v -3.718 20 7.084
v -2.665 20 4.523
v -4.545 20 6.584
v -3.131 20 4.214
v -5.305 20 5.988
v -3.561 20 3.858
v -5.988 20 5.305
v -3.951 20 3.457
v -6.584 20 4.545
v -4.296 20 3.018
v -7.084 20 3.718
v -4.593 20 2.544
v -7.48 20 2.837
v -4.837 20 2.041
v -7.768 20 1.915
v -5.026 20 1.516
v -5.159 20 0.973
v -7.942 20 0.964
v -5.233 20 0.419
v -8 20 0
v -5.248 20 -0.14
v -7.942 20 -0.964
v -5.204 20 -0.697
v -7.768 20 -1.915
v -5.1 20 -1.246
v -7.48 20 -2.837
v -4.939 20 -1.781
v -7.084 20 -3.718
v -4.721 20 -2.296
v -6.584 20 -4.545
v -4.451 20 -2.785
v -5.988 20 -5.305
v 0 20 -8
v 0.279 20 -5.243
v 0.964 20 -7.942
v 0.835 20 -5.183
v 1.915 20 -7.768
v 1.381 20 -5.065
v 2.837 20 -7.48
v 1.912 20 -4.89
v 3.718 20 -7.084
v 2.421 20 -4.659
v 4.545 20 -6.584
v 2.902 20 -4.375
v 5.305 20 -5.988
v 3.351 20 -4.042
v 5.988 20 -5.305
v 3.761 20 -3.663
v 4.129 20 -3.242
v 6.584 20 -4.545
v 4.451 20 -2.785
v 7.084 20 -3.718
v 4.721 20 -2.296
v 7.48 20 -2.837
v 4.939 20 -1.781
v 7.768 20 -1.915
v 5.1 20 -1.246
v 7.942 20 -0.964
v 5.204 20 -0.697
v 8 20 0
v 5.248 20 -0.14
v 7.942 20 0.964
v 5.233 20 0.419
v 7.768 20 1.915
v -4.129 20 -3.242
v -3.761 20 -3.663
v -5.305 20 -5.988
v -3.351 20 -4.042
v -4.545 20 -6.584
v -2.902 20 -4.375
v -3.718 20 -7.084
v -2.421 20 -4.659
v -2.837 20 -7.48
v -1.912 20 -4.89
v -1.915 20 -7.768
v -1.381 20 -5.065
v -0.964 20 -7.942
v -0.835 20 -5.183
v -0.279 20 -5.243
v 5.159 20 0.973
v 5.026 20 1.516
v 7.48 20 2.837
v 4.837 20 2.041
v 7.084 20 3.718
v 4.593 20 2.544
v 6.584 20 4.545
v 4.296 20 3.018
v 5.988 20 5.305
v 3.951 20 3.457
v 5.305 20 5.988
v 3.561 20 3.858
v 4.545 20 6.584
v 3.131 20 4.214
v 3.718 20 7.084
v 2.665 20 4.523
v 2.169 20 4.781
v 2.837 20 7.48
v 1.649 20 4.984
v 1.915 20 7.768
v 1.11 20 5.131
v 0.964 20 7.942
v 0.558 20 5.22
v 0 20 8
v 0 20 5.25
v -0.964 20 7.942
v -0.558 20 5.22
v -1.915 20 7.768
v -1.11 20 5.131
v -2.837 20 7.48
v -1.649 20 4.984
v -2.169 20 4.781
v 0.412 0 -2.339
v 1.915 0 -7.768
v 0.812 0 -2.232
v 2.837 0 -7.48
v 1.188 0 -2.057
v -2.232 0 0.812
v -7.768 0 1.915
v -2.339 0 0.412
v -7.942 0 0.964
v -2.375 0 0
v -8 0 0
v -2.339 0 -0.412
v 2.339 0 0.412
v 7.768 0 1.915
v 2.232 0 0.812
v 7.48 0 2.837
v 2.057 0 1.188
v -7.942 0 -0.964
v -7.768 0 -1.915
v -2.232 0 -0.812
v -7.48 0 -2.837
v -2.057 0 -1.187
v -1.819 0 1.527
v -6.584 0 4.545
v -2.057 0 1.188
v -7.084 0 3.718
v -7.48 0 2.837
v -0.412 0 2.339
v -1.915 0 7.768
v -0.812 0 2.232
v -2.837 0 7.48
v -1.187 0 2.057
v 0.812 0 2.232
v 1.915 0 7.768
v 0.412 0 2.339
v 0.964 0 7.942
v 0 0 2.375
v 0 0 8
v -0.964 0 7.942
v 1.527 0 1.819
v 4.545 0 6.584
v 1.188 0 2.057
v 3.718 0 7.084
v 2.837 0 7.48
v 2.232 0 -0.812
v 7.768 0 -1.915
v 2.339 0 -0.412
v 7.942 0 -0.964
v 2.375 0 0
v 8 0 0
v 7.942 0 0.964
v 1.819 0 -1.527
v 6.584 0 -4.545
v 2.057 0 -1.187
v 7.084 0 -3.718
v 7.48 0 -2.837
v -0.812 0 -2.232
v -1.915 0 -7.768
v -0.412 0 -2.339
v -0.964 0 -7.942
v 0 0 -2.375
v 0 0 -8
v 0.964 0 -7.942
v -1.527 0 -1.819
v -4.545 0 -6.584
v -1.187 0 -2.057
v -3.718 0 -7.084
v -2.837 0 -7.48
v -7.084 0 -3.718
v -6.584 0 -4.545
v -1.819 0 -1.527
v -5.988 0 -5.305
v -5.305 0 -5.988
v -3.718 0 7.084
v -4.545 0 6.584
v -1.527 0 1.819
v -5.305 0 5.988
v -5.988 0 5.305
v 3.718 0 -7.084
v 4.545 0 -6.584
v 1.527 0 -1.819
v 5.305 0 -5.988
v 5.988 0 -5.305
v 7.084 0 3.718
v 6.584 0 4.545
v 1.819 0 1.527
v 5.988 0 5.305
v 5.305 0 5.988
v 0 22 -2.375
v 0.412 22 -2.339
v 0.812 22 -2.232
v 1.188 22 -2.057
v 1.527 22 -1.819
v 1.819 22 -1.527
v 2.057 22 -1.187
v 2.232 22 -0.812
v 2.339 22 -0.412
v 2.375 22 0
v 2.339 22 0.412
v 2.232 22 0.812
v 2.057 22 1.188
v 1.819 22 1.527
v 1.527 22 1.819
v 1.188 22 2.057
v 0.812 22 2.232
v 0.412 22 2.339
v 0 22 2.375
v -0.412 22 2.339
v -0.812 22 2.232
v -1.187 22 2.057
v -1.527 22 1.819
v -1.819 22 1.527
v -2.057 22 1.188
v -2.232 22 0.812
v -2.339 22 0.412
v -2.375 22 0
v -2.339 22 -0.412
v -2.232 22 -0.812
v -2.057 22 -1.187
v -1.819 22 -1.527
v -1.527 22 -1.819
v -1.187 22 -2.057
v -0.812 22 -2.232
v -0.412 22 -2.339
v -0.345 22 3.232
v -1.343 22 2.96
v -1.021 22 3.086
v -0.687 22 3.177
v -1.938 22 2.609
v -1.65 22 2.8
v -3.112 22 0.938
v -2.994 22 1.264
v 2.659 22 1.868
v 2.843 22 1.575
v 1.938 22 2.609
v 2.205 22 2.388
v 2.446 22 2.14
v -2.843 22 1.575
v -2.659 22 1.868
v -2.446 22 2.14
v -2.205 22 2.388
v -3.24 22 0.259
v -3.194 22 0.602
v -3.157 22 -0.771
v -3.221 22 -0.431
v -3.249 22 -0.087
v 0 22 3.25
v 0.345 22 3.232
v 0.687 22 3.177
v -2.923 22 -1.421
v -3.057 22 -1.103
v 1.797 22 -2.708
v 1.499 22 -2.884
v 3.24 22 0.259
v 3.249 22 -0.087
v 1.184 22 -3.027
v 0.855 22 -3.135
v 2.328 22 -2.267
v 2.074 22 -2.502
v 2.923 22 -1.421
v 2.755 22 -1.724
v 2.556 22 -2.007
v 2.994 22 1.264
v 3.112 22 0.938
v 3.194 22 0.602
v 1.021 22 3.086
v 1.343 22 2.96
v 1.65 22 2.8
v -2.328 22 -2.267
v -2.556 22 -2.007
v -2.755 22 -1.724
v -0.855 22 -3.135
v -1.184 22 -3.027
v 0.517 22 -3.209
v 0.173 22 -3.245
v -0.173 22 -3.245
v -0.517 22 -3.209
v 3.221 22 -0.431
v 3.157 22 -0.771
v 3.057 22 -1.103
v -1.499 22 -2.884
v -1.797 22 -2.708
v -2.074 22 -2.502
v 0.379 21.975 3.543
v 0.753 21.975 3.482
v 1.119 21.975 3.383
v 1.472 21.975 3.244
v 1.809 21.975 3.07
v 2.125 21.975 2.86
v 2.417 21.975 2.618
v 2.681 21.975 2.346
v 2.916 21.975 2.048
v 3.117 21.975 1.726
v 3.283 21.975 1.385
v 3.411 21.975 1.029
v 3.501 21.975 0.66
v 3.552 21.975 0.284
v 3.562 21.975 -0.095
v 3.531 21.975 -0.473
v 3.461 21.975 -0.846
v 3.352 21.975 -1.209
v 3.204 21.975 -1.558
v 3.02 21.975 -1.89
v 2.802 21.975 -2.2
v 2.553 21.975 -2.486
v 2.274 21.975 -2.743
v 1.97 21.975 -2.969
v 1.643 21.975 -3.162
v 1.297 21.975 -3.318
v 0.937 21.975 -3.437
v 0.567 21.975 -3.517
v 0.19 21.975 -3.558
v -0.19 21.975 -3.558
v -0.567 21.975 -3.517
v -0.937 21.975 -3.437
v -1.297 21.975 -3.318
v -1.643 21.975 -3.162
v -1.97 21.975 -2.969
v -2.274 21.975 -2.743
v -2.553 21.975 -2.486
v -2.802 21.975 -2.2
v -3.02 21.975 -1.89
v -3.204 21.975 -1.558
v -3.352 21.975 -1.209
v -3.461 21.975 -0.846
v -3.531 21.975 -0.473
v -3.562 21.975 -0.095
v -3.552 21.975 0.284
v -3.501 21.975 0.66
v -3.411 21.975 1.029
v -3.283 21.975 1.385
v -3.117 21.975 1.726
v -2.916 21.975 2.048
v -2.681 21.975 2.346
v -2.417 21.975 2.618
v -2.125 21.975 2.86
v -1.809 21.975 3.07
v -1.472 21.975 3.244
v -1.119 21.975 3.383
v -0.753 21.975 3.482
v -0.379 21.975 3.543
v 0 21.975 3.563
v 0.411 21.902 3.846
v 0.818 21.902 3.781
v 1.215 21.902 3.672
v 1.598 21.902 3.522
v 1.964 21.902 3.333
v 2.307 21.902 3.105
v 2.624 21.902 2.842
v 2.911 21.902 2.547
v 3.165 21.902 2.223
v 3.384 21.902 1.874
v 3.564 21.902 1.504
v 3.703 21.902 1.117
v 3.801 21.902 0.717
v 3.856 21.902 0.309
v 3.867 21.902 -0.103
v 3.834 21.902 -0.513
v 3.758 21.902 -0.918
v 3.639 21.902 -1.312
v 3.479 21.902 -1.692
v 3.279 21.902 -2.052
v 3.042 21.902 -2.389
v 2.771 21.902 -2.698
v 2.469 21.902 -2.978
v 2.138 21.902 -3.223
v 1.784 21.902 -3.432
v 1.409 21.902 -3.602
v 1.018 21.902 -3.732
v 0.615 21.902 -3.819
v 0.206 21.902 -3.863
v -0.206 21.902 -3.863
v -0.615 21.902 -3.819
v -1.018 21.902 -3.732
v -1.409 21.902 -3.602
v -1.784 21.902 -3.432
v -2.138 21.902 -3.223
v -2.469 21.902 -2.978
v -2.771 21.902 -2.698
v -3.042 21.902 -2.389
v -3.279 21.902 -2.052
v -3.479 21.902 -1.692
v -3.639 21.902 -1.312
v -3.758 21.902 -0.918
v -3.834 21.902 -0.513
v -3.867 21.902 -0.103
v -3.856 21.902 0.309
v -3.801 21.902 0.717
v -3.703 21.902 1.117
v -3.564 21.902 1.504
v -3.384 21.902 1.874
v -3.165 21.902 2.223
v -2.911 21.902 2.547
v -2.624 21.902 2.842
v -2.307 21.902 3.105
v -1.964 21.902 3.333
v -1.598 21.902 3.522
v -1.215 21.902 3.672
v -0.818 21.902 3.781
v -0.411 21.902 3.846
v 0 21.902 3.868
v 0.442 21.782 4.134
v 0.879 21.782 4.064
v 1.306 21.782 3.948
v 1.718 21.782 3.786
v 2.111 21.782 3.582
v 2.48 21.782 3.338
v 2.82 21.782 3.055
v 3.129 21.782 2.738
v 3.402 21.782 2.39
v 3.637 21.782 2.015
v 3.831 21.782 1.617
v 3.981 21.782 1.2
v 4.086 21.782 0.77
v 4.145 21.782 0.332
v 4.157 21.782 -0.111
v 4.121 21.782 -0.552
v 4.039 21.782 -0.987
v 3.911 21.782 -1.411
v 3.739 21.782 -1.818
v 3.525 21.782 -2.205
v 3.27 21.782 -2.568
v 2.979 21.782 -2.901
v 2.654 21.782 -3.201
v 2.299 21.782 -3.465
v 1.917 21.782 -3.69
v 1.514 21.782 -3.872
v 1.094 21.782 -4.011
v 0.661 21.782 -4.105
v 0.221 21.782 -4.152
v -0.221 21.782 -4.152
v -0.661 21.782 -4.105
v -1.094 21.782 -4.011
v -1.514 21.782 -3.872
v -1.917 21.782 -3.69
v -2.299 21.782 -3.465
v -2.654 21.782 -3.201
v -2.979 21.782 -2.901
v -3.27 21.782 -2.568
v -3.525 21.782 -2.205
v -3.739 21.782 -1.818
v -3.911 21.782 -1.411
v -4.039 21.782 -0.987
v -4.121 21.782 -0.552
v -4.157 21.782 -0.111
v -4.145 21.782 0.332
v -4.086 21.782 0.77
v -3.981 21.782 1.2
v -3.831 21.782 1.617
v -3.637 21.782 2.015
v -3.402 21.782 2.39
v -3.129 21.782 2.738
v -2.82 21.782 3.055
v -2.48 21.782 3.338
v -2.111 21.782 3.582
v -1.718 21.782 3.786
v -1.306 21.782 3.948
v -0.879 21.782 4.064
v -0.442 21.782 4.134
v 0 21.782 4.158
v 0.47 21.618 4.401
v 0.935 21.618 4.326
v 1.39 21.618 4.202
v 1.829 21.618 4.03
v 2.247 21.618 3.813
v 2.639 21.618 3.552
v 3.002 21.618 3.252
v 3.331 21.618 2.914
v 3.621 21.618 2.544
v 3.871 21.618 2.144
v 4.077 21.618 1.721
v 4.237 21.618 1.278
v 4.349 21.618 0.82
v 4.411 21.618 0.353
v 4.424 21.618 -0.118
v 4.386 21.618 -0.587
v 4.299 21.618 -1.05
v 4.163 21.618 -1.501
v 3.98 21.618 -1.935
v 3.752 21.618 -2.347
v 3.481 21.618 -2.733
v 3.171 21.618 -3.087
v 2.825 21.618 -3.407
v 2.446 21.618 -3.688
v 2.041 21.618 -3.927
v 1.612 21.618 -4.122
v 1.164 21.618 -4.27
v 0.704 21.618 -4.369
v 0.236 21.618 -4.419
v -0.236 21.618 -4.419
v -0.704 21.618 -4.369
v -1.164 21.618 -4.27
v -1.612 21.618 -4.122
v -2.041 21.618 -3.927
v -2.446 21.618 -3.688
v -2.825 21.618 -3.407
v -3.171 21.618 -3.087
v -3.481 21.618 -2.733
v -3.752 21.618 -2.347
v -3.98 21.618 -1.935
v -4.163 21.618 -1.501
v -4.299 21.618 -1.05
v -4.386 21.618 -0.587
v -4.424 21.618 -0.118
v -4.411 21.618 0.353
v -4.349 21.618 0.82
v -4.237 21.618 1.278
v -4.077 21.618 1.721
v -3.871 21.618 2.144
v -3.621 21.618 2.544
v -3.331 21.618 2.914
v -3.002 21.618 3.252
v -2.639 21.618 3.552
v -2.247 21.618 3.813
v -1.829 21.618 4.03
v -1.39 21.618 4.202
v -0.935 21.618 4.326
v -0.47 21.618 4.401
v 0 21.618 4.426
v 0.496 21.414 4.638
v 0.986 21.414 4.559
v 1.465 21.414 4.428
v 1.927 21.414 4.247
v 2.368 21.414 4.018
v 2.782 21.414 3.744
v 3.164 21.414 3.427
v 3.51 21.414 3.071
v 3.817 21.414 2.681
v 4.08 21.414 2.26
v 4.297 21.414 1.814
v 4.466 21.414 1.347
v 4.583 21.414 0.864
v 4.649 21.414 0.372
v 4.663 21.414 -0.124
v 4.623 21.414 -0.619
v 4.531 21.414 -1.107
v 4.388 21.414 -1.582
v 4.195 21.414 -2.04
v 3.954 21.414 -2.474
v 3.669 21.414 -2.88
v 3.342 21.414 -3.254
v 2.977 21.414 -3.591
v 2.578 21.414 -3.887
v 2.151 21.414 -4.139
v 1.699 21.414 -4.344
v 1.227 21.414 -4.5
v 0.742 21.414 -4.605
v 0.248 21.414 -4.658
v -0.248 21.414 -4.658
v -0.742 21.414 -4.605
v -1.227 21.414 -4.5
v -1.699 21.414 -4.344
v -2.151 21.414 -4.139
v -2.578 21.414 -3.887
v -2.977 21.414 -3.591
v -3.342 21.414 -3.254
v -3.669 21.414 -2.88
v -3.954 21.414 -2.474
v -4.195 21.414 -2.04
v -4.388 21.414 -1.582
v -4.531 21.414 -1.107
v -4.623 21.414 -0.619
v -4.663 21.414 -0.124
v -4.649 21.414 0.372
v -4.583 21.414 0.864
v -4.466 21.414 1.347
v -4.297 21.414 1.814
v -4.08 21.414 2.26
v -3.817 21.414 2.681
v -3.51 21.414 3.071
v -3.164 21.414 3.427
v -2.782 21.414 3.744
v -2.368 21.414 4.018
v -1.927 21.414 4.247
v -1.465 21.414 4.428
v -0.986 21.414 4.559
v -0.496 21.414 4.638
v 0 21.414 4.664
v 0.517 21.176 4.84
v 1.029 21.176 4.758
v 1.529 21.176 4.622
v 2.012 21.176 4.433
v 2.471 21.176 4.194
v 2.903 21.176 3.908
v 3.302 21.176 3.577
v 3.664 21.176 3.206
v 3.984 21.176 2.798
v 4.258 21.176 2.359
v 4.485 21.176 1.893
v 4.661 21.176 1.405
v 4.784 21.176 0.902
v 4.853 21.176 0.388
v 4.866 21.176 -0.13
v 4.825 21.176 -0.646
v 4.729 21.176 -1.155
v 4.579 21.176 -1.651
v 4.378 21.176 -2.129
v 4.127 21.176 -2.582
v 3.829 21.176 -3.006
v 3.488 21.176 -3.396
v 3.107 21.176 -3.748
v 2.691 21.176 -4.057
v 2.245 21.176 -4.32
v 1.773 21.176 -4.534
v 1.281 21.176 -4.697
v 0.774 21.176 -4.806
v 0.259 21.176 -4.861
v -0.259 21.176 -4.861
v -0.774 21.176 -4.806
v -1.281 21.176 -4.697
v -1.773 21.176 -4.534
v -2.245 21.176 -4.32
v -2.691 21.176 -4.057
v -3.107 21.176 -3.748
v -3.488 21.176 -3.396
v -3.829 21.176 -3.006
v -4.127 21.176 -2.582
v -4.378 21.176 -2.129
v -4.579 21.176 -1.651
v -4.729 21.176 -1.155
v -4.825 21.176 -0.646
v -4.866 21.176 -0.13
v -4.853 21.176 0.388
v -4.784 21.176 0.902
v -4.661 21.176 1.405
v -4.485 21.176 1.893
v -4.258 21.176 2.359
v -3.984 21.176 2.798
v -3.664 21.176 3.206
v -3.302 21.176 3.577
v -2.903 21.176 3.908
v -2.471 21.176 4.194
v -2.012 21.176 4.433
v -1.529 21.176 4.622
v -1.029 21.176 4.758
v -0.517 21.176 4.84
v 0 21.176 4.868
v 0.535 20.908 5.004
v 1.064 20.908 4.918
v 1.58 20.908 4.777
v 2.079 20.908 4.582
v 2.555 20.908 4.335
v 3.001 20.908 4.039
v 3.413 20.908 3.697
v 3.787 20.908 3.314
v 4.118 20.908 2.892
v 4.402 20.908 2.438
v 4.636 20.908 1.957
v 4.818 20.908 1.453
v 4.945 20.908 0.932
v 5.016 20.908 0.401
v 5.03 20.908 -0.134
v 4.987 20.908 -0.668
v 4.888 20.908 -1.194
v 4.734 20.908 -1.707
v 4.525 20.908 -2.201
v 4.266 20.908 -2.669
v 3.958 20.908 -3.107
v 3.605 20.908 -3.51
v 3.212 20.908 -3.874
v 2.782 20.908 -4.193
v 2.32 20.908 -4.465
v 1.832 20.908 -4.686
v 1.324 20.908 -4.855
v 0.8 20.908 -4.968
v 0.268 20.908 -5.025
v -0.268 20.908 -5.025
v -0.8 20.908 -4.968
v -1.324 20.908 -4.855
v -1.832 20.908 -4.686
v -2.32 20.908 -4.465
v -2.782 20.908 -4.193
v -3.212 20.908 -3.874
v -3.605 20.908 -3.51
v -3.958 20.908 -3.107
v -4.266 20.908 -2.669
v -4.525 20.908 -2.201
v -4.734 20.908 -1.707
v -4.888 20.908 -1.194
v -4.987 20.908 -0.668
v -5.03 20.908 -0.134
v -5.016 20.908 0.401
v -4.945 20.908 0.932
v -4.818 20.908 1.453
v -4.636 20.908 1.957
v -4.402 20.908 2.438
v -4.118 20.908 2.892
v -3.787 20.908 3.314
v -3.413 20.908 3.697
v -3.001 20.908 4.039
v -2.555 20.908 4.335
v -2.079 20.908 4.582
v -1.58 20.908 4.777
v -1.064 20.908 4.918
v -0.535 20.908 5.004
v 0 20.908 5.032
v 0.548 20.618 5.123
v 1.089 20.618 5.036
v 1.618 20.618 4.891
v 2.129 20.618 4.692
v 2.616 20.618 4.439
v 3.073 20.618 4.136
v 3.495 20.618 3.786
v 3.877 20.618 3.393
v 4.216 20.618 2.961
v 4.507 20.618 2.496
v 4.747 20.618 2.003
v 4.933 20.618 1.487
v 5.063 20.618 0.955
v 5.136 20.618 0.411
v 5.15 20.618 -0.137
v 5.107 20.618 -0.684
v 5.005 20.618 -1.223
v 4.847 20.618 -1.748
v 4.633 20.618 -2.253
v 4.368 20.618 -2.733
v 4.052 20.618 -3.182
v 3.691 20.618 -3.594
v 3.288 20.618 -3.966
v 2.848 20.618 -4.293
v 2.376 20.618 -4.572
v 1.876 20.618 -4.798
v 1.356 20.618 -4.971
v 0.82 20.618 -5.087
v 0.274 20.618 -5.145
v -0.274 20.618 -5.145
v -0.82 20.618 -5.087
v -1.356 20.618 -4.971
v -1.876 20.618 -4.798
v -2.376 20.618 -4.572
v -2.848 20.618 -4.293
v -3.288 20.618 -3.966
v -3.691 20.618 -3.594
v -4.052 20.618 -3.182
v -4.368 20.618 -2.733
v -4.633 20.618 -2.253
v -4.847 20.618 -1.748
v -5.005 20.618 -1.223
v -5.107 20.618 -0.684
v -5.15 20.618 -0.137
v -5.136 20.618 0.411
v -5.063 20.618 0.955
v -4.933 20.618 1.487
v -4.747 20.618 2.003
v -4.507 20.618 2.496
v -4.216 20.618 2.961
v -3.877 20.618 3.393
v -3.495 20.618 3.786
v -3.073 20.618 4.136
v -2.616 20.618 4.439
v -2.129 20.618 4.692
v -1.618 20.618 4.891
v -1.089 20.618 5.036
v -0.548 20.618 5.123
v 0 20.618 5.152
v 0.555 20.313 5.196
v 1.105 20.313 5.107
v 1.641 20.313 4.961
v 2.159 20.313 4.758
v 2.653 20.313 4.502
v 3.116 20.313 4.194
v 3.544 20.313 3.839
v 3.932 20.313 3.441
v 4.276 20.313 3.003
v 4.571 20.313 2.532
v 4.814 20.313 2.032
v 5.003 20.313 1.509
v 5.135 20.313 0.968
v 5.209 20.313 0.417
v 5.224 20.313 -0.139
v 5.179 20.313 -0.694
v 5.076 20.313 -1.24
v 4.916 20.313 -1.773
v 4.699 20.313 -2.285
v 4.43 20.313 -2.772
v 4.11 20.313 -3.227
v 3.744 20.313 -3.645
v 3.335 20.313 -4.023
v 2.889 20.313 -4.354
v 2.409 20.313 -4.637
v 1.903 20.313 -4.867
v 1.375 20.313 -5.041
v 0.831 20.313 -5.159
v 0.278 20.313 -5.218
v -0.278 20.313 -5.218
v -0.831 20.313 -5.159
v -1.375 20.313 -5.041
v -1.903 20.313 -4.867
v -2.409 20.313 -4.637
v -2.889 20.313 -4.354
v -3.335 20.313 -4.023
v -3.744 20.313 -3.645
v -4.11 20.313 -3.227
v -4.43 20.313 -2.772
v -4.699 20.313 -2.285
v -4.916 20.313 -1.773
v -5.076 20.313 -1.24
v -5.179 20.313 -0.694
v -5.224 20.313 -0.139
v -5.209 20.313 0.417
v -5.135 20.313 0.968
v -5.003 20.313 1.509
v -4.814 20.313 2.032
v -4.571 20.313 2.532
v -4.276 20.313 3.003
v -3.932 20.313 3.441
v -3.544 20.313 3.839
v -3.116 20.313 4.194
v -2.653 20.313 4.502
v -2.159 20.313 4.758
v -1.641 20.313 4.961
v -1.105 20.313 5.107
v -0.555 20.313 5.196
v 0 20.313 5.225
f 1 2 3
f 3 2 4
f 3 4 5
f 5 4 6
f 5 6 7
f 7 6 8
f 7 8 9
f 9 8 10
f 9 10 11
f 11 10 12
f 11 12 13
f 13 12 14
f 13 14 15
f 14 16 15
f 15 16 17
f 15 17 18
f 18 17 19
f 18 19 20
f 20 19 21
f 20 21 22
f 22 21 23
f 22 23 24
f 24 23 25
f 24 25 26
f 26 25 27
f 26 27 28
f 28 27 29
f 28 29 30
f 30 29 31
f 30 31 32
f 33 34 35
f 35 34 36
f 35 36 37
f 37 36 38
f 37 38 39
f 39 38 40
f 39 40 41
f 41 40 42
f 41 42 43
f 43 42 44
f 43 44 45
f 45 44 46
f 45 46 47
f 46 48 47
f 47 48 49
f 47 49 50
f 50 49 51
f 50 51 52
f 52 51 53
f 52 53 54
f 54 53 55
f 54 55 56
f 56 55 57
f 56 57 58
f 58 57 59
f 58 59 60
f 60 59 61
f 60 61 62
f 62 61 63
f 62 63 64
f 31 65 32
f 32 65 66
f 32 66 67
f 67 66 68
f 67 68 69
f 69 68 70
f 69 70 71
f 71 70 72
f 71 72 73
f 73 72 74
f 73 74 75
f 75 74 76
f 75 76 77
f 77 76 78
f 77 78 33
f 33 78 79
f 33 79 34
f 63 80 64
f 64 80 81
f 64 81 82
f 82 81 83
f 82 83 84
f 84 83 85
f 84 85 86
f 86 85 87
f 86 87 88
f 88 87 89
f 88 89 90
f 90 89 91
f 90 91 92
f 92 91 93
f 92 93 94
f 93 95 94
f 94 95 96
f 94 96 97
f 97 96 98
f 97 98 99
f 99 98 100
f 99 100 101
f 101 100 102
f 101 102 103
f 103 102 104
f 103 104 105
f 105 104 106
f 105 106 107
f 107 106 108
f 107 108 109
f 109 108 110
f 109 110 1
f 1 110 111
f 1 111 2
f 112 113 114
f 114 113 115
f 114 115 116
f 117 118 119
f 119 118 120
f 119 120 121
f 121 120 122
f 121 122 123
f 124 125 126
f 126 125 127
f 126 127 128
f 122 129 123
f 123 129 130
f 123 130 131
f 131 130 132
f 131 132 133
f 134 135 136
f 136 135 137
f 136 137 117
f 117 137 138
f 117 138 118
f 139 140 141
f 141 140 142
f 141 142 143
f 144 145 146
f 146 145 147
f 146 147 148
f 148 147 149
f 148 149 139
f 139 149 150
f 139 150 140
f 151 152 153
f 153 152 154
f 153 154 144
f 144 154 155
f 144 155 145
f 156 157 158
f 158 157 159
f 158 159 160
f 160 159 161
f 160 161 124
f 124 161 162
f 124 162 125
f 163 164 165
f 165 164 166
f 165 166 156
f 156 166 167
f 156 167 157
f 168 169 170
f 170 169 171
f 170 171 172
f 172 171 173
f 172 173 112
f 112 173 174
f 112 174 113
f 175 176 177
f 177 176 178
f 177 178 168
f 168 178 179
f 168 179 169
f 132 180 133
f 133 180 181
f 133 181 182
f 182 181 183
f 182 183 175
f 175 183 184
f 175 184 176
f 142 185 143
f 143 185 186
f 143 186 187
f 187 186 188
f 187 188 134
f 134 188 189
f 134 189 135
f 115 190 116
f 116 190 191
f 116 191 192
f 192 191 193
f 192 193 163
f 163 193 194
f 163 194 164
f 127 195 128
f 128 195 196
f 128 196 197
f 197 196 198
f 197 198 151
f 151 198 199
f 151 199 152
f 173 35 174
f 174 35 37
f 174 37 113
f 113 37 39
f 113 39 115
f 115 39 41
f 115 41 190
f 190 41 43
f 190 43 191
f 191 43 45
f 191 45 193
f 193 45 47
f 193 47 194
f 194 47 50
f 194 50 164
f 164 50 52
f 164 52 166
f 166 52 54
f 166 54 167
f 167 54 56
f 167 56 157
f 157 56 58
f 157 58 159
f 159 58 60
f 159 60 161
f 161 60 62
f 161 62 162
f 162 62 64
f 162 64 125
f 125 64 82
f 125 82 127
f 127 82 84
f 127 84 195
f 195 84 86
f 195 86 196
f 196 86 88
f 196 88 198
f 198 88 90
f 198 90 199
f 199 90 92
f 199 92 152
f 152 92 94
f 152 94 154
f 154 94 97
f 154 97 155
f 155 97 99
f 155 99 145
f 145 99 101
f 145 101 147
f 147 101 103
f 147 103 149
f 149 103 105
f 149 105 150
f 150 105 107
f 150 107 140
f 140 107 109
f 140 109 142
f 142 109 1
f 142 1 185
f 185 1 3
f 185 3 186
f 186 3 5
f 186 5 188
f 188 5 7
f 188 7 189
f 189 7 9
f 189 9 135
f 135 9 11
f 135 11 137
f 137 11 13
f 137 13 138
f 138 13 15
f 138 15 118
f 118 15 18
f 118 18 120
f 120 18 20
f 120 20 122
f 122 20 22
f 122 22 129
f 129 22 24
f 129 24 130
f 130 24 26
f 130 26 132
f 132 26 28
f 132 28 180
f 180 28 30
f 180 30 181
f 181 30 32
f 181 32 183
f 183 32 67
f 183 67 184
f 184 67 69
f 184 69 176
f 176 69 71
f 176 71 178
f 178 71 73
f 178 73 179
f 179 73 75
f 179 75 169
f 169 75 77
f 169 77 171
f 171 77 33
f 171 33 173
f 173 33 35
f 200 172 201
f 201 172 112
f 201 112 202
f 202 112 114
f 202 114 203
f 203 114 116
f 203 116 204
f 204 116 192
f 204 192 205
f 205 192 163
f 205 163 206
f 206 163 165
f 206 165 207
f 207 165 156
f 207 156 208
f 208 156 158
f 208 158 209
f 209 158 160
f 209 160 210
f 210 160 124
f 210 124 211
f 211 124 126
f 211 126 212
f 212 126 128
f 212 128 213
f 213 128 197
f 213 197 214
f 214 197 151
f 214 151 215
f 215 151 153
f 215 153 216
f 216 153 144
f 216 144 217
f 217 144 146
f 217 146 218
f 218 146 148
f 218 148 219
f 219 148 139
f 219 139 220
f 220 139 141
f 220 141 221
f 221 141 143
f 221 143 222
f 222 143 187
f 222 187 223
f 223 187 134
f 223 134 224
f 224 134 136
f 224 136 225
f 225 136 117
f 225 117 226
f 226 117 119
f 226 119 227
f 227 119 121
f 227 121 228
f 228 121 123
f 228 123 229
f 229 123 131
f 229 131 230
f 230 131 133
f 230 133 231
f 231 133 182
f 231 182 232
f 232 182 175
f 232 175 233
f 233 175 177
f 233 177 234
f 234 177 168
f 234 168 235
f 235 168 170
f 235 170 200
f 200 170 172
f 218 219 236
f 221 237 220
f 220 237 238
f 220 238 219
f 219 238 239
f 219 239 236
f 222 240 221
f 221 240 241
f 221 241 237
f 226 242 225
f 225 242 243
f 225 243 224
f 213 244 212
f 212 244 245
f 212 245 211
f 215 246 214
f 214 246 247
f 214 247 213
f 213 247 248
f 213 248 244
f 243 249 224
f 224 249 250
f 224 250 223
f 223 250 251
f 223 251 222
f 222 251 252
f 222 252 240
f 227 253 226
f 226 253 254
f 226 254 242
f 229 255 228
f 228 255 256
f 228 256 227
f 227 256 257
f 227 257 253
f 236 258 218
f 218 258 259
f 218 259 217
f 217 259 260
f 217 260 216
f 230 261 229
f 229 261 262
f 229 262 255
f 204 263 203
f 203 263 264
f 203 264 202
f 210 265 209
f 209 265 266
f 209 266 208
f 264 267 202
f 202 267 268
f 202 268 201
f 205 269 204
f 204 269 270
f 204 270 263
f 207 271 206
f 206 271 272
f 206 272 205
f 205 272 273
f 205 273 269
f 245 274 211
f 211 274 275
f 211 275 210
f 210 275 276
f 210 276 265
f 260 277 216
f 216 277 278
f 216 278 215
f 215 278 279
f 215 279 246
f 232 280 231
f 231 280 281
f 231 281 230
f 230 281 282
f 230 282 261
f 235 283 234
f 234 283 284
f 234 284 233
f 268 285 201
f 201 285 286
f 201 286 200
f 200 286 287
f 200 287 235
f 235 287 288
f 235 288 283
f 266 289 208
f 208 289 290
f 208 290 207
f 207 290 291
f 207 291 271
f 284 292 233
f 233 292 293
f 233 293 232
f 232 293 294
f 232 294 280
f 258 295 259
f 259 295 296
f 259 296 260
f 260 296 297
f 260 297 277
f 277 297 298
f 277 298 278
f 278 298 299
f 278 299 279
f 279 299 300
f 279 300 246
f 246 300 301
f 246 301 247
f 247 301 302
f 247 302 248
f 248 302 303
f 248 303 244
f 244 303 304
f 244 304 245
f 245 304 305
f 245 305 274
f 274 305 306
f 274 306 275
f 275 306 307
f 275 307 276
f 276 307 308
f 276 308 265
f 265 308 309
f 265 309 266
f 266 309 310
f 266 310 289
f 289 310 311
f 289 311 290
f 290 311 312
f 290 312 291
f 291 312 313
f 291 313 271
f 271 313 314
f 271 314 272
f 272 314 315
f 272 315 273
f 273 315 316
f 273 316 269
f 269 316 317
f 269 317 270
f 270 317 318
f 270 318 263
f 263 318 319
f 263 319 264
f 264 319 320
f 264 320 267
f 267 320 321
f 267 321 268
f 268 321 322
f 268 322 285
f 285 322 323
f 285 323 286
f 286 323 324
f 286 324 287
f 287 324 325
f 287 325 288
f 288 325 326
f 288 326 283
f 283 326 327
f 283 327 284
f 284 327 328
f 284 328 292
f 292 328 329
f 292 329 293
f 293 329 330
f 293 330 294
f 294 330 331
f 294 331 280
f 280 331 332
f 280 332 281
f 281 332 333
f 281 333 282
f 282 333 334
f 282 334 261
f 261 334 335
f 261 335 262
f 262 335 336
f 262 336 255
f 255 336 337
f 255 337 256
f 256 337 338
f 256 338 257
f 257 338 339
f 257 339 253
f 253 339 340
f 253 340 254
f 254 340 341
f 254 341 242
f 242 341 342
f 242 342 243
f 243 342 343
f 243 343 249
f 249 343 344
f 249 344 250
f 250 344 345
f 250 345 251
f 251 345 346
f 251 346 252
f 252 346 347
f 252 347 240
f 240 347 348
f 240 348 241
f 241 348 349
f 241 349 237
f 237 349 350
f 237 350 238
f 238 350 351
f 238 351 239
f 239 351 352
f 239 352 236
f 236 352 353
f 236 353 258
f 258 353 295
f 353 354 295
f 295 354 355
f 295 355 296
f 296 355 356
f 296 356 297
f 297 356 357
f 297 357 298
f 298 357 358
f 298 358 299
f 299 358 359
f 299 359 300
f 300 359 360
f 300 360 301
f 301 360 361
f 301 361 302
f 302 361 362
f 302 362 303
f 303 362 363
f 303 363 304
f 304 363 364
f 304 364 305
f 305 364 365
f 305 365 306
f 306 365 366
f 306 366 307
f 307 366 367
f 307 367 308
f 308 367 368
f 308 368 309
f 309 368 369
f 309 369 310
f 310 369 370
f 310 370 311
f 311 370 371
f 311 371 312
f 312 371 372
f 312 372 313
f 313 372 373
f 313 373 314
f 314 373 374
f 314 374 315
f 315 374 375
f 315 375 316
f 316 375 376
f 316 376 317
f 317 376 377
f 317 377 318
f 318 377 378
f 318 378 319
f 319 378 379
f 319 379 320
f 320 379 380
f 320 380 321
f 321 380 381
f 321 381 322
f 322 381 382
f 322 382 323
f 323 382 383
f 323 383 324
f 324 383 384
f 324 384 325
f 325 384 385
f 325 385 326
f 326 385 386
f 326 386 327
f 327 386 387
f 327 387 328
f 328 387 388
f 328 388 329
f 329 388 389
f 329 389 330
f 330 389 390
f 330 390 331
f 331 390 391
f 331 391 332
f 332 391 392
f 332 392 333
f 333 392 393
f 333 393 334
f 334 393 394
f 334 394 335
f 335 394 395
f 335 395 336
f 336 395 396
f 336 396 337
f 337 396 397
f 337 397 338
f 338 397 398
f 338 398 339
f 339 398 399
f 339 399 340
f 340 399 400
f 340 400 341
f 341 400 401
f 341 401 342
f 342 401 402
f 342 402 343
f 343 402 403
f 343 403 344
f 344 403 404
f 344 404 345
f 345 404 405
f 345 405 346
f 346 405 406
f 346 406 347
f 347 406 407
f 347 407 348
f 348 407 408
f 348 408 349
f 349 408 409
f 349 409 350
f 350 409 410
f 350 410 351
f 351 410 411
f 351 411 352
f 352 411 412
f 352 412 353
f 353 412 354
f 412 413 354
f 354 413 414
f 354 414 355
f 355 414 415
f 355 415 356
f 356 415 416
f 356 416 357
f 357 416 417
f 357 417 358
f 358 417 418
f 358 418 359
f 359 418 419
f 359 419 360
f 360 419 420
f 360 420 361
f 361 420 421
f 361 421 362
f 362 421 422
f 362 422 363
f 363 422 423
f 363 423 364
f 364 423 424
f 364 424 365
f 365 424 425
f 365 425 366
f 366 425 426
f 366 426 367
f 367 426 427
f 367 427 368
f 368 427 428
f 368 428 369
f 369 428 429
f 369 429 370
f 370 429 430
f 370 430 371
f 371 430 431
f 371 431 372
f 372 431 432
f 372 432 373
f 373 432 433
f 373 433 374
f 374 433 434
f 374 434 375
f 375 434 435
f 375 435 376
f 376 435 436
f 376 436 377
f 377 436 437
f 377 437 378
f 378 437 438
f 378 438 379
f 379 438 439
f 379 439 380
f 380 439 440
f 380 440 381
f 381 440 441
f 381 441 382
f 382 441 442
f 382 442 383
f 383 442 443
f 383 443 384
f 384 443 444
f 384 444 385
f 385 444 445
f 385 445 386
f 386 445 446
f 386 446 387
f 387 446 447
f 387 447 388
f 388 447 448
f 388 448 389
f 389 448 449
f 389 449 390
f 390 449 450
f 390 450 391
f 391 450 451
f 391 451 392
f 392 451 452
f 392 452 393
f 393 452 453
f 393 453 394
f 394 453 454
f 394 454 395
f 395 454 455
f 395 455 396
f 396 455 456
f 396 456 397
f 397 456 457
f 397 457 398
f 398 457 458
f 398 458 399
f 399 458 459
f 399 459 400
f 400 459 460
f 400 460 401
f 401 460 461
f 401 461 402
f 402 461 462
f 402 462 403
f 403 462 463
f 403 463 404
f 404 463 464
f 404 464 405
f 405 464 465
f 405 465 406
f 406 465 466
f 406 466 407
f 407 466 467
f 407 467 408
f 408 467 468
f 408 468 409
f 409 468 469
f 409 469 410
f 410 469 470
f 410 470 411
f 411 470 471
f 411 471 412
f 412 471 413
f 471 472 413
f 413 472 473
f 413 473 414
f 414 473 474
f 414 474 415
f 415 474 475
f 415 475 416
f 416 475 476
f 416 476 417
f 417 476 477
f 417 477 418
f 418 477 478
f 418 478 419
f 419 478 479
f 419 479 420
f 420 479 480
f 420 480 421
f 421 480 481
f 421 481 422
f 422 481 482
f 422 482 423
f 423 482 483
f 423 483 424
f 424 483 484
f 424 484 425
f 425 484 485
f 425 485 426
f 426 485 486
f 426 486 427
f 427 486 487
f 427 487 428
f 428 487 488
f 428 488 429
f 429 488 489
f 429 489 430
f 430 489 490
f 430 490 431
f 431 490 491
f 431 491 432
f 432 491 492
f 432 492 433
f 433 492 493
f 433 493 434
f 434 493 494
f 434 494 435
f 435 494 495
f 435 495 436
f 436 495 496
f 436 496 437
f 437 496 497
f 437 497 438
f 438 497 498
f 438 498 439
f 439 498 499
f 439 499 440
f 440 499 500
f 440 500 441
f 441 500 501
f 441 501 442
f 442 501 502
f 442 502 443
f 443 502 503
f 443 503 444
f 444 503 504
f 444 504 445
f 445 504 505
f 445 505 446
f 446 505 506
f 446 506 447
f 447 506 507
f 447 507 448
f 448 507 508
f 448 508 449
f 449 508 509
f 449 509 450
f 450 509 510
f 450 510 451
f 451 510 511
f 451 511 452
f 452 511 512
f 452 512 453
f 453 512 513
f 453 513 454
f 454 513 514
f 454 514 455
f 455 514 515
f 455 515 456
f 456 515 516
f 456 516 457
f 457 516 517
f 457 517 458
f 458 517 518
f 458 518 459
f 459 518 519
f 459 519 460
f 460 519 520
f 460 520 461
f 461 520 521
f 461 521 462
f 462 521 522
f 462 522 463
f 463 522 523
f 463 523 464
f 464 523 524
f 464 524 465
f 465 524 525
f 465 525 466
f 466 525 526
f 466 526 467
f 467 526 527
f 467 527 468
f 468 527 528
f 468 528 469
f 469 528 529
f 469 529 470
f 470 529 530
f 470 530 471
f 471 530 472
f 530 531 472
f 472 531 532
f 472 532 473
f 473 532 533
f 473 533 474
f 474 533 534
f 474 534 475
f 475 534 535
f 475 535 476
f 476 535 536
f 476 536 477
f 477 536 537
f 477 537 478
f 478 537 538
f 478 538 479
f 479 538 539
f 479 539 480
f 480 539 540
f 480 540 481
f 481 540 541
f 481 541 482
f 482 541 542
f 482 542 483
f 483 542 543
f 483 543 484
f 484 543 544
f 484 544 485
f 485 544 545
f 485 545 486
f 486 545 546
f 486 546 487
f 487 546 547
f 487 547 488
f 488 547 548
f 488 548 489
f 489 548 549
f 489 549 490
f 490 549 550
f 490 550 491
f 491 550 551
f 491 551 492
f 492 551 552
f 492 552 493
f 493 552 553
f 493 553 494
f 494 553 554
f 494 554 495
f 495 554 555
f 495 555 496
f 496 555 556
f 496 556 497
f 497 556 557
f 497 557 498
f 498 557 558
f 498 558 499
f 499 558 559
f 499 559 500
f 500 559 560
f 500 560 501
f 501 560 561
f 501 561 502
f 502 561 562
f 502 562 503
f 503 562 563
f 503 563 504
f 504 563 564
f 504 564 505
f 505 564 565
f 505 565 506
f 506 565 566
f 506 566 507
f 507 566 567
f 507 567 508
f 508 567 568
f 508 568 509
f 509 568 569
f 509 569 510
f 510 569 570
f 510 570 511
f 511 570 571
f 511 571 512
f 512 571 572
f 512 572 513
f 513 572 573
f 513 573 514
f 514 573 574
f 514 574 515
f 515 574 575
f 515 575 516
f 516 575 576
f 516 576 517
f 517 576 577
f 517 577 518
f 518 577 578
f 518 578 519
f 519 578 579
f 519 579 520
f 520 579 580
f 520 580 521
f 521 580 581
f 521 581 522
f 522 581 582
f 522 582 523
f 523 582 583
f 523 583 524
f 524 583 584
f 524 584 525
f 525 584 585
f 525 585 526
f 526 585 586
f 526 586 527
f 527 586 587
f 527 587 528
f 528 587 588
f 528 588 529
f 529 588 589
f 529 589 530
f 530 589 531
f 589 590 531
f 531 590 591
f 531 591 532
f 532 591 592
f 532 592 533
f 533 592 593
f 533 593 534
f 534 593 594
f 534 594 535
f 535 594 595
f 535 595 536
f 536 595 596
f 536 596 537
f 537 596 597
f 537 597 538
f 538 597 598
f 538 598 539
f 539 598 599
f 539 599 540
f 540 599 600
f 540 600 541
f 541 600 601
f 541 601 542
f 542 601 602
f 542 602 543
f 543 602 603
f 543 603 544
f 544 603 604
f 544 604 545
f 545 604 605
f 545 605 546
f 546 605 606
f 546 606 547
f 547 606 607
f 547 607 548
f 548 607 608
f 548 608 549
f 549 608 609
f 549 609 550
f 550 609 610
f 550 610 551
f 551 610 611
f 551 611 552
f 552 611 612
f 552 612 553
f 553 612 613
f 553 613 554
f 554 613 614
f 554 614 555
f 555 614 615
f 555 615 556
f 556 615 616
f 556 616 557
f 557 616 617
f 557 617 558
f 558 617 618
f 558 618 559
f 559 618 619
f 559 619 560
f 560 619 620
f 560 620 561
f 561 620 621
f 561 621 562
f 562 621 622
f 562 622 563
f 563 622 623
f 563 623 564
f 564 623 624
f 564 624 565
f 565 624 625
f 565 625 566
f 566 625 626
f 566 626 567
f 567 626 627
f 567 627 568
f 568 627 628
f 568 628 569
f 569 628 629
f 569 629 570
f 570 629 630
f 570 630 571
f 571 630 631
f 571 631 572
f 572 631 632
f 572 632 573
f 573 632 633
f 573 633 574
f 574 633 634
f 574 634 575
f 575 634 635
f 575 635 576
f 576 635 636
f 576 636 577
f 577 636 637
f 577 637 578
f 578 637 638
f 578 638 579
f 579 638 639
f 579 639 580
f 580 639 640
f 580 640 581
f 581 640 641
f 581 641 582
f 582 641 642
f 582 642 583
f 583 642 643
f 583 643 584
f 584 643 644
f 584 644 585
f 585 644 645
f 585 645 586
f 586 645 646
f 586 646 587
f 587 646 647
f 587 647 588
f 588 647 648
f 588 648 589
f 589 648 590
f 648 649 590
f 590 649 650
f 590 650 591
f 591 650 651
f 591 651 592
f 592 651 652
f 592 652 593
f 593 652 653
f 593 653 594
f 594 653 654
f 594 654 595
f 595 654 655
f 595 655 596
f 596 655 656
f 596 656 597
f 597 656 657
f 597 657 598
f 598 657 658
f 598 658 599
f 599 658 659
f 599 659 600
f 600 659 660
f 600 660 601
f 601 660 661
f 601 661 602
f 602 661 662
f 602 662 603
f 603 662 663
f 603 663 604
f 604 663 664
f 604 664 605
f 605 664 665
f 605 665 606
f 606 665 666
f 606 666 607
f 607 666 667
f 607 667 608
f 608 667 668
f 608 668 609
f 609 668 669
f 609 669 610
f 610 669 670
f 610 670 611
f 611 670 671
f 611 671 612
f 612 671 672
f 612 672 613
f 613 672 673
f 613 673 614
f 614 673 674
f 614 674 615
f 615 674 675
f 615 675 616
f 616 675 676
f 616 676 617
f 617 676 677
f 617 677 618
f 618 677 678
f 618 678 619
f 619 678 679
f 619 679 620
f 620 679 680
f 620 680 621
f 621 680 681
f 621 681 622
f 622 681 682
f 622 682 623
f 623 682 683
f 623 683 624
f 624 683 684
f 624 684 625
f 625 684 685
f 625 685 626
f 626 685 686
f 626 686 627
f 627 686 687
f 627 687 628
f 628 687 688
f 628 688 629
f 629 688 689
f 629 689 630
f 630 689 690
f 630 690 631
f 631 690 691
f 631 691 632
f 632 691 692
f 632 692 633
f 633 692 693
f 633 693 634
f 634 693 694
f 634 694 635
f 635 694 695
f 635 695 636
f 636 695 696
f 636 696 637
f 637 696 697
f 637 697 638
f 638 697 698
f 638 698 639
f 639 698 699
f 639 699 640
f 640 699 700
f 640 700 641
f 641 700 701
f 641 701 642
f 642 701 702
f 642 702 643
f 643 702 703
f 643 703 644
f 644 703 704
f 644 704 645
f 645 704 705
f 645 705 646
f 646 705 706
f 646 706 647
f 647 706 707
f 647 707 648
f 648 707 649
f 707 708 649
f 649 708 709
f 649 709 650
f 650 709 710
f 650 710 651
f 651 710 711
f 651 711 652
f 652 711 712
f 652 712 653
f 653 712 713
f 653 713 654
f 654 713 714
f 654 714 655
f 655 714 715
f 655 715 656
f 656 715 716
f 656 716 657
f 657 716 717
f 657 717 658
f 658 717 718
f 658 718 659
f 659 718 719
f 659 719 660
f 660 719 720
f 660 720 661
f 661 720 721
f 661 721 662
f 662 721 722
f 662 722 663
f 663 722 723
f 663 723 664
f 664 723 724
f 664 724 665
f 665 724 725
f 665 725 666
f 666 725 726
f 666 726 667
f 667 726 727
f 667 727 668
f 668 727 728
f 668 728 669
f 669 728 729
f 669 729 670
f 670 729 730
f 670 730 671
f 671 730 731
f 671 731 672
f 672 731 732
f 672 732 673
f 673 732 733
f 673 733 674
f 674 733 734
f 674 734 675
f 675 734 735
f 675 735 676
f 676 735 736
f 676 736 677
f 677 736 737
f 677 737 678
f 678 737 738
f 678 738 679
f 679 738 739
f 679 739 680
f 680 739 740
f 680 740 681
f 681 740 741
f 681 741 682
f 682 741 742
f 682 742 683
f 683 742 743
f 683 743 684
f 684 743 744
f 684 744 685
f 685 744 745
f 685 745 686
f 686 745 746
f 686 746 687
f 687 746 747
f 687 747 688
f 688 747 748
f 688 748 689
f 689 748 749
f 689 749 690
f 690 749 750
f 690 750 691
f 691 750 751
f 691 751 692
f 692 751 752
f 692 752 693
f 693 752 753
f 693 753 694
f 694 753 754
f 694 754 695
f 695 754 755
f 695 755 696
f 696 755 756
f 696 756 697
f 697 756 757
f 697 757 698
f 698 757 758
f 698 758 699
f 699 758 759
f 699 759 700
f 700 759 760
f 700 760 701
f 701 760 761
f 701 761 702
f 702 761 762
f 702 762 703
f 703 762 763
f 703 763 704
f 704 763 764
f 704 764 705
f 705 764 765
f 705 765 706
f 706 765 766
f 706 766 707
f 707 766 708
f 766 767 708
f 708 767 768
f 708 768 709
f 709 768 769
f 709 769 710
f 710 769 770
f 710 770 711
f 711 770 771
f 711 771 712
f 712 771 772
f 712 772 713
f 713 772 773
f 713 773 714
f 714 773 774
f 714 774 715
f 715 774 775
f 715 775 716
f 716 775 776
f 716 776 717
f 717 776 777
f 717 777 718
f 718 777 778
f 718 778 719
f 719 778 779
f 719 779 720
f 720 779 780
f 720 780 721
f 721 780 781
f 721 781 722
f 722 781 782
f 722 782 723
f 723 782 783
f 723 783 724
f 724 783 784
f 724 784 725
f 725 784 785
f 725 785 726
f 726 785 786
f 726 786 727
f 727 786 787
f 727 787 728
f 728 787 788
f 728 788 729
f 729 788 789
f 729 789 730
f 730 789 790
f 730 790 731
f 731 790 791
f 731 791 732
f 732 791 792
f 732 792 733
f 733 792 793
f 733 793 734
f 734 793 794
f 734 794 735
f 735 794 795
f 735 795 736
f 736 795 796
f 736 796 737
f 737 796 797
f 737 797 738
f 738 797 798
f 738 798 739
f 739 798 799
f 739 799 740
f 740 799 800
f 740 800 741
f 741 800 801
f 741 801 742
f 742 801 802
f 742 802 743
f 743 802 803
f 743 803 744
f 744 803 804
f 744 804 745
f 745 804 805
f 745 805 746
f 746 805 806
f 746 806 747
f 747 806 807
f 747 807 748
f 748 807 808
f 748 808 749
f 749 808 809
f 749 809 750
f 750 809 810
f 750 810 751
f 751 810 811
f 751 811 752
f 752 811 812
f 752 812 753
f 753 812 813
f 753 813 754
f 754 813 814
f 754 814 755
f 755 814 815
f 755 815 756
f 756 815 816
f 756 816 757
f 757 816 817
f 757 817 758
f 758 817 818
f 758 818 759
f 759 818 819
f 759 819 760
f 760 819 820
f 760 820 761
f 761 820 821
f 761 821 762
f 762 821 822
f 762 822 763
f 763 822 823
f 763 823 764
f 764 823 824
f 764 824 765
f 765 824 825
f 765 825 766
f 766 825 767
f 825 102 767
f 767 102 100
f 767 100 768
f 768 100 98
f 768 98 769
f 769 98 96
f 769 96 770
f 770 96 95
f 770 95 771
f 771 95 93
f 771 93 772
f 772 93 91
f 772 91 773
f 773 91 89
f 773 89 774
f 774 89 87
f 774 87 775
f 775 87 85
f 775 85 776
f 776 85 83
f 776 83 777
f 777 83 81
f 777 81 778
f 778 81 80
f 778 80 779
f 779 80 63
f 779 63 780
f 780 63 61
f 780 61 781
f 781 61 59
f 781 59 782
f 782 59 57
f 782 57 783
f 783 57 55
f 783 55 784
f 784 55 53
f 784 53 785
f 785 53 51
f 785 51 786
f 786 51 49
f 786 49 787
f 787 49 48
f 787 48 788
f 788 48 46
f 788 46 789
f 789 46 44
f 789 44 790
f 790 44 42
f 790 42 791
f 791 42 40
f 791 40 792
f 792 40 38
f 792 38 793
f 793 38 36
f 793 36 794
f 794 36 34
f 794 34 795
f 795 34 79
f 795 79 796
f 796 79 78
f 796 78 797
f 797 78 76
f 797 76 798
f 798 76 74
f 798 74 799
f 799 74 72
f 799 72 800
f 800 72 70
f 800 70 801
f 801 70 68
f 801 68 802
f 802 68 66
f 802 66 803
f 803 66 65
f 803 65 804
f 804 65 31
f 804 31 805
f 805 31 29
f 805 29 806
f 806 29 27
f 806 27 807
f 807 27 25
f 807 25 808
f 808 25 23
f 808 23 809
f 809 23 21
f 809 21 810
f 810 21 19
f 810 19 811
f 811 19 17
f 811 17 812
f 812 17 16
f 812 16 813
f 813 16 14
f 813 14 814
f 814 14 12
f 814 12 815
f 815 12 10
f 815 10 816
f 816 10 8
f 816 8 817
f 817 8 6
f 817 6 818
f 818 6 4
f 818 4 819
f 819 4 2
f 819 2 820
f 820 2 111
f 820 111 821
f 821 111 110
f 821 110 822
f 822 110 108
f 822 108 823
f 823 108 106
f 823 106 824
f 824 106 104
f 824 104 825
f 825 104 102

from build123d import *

# Parameters (mm, degrees)
SKETCH1_R           = 8
SKETCH1_R_2         = 2.375
BOSS_EXTRUDE1_DEPTH = 20
SKETCH2_R           = 5.25
SKETCH2_R_2         = 2.375
BOSS_EXTRUDE2_DEPTH = 2
FILLET1_R           = 2


with BuildPart() as part:
    # Sketch1 → Boss-Extrude1 (new body)
    with BuildSketch(Plane(origin=(0, 0, 0), x_dir=(1, 0, 0), z_dir=(0, 1, 0))):
        with Locations(Location((0, 0, 0), (0, 0, 270))):
            Circle(SKETCH1_R)
        with Locations(Location((0, 0, 0), (0, 0, 270))):
            Circle(SKETCH1_R_2, mode=Mode.SUBTRACT)
    extrude(amount=BOSS_EXTRUDE1_DEPTH)

    # Sketch2 → Boss-Extrude2 (add)
    with BuildSketch(Plane(origin=(0, 20, 0), x_dir=(1, 0, 0), z_dir=(0, 1, 0))):
        with Locations(Location((0, 0, 0), (0, 0, 270))):
            Circle(SKETCH2_R)
        with Locations(Location((0, 0, 0), (0, 0, 270))):
            Circle(SKETCH2_R_2, mode=Mode.SUBTRACT)
    extrude(amount=BOSS_EXTRUDE2_DEPTH)

    # Fillet1
    fillet1_edges = [part.edges().sort_by_distance(p)[0] for p in [
        (0, 22, -5.25),
    ]]
    fillet(fillet1_edges, radius=FILLET1_R - 0.0001)  # a hair under: the kernel refuses the full size


solid = part.part
